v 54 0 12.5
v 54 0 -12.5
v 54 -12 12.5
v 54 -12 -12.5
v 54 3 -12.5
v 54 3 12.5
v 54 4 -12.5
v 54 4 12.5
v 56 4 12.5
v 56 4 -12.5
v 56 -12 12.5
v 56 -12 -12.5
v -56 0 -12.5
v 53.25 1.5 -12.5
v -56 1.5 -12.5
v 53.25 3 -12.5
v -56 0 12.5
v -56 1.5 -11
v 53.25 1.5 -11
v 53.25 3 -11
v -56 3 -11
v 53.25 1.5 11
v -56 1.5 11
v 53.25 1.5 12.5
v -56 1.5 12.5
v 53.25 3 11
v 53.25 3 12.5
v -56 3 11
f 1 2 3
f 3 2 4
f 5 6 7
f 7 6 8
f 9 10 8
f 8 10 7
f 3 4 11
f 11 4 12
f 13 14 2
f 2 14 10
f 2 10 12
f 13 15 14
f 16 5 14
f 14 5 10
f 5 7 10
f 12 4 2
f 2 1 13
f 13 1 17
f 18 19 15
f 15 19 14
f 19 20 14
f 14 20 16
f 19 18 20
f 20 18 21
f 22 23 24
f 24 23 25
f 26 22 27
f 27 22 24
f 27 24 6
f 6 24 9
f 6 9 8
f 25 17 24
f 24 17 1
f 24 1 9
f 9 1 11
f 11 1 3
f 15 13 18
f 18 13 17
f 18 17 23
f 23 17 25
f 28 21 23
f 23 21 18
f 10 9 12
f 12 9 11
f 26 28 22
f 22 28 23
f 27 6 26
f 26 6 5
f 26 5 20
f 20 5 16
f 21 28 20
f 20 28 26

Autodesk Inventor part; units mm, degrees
ref_plane "YZ Plane" through (0, 0, 0) normal (1, 0, 0) x (0, 1, 0)
ref_plane "XZ Plane" through (0, 0, 0) normal (0, 1, 0) x (-1, 0, 0)
ref_plane "XY Plane" through (0, 0, 0) normal (0, 0, 1) x (1, 0, 0)
sketch "Sketch2" plane through (0, 0, 0) normal (0, 1, 0) x (-1, 0, 0)
  line L0 (56, 11) -> (-56, 11)
  line L1 (-56, 11) -> (-56, -11)
  line L2 (-56, -11) -> (56, -11)
  line L3 (56, -11) -> (56, 11)
  line L4 (56, 11) -> (-56, -11) construction
  line L5 (-56, 11) -> (56, -11) construction
  point P0 (0, 0)
  dimension "d2" = 112
  dimension "d3" = 22
extrude "Extrusion1" add sketch "Sketch2" along normal blind 3
sketch "Sketch4" plane through (-56, 0, 11) normal (0, 0, 1) x (1, 0, 0)
  line L0 (0, 0) -> (112, 0) projected
  line L1 (112, 0) -> (112, 3) projected
  line L2 (0, 0) -> (110, 0)
  line L3 (112, 0) -> (112, 1.5) construction
  line L4 (112, 1.5) -> (109.25, 1.5) construction
  line L5 (0, 1.5) -> (0, 0)
  line L6 (109.25, 1.5) -> (0, 1.5)
  line L7 (110, 0) -> (112, 0) construction
  line L8 (109.25, 1.5) -> (109.25, 3)
  line L9 (0, 3) -> (112, 3) projected
  line L10 (109.25, 3) -> (112, 3)
  line L11 (112, 3) -> (112, 0)
  line L12 (110, 0) -> (112, 0)
  point P0 (56, 0)
  dimension "d6" = 1.5
  dimension "d12" = 2.75
extrude "Extrusion2" add sketch "Sketch4" along normal blind 1.5
mirror "Mirror1" about plane through (0, 0, 0) normal (0, 0, 1) of "Extrusion2"
sketch "Sketch6" plane through (0, 0, 0) normal (0, -1, 0) x (1, 0, 0)
  line L0 (56, 12.5) -> (53.25, 12.5) projected
  line L1 (-56, -12.5) -> (56, -12.5) projected
  line L2 (56, 12.5) -> (54, 12.5)
  line L3 (54, 12.5) -> (54, -12.5)
  line L4 (54, -12.5) -> (56, -12.5)
  line L5 (56, -12.5) -> (56, 12.5)
  point P0 (0, 0)
  dimension "d13" = 2
extrude "Extrusion4" add sketch "Sketch6" along normal blind 12 and the other way blind 4
properties part number "LampeSolaire2_Casing_Cover"
